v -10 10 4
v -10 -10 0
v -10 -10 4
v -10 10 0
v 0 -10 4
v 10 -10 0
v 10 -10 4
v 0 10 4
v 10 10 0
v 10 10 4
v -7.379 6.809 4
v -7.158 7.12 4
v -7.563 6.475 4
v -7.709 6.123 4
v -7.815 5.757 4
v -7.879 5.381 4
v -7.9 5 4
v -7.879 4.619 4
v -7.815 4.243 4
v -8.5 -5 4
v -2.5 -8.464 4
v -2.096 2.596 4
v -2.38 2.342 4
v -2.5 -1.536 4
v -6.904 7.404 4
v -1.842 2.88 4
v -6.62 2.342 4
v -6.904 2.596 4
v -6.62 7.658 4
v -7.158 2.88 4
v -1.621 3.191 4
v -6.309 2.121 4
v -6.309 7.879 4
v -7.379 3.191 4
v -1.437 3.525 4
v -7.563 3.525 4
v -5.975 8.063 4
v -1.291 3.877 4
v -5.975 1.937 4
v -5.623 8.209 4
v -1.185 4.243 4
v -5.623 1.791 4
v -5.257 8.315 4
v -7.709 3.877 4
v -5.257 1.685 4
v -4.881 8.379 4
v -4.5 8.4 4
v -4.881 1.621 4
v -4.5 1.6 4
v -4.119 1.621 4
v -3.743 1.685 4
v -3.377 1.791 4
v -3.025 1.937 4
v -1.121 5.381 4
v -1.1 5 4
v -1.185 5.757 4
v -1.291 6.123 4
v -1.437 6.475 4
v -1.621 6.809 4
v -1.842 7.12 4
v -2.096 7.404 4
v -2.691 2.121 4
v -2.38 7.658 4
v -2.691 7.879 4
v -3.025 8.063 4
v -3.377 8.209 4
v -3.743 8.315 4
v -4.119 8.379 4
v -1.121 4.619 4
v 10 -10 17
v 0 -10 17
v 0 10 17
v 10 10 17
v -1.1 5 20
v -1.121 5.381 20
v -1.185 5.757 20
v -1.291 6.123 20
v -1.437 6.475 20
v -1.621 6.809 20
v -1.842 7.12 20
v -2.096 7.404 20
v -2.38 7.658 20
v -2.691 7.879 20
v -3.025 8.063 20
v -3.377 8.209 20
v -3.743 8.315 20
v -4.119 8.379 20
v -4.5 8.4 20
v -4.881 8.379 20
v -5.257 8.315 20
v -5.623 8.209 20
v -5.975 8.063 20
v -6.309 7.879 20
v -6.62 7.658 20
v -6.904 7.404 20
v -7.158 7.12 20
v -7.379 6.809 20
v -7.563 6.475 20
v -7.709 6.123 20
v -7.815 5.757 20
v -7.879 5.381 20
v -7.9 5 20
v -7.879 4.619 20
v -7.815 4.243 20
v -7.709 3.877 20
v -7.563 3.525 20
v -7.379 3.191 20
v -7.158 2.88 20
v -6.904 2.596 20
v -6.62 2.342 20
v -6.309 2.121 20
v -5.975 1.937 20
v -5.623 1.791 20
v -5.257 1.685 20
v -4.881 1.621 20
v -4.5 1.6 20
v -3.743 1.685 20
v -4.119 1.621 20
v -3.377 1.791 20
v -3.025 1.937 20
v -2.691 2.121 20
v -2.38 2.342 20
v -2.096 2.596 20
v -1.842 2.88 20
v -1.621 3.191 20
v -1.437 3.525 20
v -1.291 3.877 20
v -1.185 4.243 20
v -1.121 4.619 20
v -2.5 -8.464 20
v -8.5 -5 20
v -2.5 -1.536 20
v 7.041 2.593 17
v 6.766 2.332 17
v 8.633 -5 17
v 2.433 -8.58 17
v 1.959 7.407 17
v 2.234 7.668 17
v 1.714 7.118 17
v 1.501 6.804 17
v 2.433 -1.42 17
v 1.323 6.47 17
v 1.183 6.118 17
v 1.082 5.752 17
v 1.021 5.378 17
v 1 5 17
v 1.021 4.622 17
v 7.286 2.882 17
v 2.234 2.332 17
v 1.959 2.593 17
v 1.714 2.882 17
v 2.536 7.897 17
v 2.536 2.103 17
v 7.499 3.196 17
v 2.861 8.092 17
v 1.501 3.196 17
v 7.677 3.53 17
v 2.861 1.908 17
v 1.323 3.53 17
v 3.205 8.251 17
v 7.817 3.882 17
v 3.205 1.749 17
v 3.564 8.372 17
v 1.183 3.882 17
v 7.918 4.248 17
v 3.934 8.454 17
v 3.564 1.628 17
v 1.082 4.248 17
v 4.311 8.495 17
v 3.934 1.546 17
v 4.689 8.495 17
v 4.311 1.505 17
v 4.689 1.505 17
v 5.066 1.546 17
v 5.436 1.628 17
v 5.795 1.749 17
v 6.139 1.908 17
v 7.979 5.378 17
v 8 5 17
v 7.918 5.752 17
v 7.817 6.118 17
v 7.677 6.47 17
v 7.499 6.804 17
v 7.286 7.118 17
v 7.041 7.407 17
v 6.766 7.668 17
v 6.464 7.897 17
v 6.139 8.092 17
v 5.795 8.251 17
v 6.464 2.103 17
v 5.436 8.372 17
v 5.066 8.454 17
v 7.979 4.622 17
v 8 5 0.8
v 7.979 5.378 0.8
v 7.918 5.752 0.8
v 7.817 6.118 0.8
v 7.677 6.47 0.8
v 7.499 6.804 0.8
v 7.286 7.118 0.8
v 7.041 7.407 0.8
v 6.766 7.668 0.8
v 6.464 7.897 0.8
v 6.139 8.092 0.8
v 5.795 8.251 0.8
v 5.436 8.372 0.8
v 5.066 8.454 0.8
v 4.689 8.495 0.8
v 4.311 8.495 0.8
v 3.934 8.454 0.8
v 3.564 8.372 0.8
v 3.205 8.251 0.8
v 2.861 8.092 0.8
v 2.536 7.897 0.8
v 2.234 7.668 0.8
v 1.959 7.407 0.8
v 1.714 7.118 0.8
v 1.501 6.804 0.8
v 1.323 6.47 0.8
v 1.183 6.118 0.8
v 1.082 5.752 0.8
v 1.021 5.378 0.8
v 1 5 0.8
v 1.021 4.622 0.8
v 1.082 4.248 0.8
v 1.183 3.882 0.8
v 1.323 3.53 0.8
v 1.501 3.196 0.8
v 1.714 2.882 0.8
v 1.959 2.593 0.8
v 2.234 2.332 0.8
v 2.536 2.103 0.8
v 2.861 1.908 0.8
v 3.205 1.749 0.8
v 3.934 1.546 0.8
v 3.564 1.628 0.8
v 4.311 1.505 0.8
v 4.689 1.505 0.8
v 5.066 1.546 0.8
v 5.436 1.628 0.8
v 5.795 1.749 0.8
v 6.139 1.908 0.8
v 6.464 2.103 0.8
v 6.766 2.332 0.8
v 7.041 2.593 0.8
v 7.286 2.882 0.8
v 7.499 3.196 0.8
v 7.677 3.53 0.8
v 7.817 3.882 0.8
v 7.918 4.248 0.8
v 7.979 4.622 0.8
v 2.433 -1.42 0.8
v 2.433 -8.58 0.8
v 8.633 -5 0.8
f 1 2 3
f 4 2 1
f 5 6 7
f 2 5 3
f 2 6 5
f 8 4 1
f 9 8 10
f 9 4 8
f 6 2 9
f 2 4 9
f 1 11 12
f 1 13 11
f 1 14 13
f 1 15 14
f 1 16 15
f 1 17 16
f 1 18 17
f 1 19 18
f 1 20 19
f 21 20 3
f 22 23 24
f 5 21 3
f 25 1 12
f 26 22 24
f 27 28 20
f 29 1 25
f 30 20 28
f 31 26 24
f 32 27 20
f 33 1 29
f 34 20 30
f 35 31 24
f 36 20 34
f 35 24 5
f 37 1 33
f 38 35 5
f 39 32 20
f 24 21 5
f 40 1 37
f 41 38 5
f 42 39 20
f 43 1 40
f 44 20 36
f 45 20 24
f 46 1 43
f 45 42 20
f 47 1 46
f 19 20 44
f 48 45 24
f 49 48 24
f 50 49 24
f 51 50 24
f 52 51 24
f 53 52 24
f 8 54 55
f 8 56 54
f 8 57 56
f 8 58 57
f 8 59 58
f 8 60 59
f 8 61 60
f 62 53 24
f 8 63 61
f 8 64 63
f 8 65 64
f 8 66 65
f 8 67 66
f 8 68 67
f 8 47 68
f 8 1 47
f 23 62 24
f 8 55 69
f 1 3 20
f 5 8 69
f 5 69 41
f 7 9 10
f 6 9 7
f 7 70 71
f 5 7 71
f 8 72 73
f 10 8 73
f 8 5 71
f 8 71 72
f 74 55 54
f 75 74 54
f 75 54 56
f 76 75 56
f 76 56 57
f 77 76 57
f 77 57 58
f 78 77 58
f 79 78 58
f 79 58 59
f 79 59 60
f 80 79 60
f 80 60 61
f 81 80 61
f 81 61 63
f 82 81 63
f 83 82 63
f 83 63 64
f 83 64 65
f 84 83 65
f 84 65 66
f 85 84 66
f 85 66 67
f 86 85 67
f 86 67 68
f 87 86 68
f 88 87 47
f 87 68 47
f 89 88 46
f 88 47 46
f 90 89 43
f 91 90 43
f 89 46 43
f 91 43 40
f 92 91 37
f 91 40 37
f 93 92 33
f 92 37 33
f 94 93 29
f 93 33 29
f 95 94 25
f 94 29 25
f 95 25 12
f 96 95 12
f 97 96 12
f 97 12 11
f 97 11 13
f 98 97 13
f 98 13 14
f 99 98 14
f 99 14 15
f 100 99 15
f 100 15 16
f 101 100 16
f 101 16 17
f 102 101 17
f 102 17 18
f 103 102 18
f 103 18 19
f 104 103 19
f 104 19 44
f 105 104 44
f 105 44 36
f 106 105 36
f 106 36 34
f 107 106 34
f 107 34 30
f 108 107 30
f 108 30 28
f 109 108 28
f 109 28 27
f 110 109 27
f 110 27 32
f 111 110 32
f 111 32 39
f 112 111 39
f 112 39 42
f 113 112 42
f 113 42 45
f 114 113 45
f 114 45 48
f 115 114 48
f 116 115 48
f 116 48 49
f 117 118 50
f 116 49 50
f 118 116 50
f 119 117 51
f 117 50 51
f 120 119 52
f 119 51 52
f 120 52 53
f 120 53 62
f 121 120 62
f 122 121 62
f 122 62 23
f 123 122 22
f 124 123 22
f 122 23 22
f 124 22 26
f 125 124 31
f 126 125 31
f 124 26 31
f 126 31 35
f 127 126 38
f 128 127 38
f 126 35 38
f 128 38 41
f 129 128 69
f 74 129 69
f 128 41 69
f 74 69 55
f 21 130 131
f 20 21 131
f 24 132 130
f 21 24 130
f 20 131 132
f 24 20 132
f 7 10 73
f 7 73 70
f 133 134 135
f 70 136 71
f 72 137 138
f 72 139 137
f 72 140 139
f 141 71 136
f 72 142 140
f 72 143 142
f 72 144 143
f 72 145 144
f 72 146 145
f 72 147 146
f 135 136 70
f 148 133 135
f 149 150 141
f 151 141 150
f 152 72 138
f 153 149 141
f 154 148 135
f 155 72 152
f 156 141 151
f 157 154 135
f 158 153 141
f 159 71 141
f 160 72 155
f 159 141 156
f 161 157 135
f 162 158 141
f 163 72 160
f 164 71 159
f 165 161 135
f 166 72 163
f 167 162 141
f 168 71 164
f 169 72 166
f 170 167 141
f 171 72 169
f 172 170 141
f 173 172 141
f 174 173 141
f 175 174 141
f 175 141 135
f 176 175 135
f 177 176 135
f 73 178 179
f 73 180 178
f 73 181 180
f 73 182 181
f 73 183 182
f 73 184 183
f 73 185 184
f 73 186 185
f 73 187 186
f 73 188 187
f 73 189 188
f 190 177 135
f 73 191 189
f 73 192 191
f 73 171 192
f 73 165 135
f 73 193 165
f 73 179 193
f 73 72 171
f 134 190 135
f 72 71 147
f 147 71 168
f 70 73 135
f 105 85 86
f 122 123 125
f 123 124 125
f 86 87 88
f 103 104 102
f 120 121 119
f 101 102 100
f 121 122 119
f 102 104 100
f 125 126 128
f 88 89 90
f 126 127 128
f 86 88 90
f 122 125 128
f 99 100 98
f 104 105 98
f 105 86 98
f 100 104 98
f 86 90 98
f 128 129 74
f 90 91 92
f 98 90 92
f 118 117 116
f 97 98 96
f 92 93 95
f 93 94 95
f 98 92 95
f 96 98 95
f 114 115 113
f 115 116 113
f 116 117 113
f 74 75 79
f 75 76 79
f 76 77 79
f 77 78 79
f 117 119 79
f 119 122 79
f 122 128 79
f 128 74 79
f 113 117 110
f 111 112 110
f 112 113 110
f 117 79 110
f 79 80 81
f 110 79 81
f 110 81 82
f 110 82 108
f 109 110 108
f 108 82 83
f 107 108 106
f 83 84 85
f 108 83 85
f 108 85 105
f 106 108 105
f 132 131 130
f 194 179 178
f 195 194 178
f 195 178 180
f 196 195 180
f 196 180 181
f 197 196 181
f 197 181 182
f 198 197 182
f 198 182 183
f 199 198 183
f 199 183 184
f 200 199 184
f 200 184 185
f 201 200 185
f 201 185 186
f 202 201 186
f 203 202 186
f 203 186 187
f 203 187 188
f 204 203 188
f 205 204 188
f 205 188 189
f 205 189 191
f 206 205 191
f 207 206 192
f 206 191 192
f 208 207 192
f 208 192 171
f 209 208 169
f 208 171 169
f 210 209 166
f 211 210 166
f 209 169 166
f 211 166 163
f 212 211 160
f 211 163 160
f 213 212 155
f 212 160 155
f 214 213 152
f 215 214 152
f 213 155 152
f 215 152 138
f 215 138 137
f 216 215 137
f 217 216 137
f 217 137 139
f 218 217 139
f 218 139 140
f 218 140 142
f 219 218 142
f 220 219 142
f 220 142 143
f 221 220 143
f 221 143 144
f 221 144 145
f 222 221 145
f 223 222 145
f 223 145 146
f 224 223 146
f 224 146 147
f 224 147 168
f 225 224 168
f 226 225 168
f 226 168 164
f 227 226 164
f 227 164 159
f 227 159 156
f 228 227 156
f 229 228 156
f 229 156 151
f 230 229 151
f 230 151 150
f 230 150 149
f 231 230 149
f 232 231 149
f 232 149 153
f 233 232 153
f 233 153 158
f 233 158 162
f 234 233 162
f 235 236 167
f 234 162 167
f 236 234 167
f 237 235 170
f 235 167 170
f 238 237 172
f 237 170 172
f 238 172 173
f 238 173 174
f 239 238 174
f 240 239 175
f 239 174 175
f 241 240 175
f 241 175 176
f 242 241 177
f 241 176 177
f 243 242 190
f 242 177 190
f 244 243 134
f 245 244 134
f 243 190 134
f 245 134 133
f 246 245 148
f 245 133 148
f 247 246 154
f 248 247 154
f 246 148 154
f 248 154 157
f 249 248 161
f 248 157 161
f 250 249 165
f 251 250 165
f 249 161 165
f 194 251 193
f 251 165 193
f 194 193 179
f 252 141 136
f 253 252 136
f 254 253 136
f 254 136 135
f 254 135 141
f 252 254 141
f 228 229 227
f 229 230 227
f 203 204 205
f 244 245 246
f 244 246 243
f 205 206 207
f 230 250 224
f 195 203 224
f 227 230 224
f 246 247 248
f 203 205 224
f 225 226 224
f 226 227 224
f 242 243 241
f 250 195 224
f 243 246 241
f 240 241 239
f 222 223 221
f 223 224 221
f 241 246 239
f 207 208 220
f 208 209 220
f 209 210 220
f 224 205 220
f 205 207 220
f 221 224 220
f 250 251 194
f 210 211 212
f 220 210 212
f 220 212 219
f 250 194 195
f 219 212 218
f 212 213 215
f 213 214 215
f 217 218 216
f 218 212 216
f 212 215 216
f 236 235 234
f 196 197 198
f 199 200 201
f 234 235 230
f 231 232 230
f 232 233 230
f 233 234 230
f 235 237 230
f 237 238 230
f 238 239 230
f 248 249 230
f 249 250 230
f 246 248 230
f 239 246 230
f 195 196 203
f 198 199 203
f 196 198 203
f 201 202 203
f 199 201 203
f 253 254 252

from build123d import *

# Parameters (mm, degrees)
SKETCH_W     = 20
SKETCH_H     = 20
PAD_DEPTH    = 4
SKETCH001_W  = 10
SKETCH001_H  = 20
PAD001_DEPTH = 13
SKETCH002_R  = 3.4
PAD002_DEPTH = 16
SKETCH003_R  = 3.5
POCKET_DEPTH = 16.2


with BuildPart() as part:
    # Sketch → Pad (new body)
    with BuildSketch(Plane.XY):
        Rectangle(SKETCH_W, SKETCH_H)
    extrude(amount=PAD_DEPTH)

    # Sketch001 → Pad001 (new body)
    with BuildSketch(Plane.XY.offset(4)):
        with Locations((5, 0)):
            Rectangle(SKETCH001_W, SKETCH001_H)
    extrude(amount=PAD001_DEPTH)

    # Sketch002 → Pad002 (new body)
    with BuildSketch(Plane.XY.offset(4)):
        with Locations((-4.5, 5)):
            Circle(SKETCH002_R)
        Polygon((-8.5, -5), (-2.5, -1.535898), (-2.5, -8.464102), align=None)
    extrude(amount=PAD002_DEPTH)

    # Sketch003 → Pocket (cut)
    with BuildSketch(Plane.XY.offset(17)):
        with Locations((4.5, 5)):
            Circle(SKETCH003_R)
        Polygon((2.433333, -1.420428), (2.433333, -8.579572), (8.633333, -5), align=None)
    extrude(amount=-POCKET_DEPTH, mode=Mode.SUBTRACT)


solid = part.part
